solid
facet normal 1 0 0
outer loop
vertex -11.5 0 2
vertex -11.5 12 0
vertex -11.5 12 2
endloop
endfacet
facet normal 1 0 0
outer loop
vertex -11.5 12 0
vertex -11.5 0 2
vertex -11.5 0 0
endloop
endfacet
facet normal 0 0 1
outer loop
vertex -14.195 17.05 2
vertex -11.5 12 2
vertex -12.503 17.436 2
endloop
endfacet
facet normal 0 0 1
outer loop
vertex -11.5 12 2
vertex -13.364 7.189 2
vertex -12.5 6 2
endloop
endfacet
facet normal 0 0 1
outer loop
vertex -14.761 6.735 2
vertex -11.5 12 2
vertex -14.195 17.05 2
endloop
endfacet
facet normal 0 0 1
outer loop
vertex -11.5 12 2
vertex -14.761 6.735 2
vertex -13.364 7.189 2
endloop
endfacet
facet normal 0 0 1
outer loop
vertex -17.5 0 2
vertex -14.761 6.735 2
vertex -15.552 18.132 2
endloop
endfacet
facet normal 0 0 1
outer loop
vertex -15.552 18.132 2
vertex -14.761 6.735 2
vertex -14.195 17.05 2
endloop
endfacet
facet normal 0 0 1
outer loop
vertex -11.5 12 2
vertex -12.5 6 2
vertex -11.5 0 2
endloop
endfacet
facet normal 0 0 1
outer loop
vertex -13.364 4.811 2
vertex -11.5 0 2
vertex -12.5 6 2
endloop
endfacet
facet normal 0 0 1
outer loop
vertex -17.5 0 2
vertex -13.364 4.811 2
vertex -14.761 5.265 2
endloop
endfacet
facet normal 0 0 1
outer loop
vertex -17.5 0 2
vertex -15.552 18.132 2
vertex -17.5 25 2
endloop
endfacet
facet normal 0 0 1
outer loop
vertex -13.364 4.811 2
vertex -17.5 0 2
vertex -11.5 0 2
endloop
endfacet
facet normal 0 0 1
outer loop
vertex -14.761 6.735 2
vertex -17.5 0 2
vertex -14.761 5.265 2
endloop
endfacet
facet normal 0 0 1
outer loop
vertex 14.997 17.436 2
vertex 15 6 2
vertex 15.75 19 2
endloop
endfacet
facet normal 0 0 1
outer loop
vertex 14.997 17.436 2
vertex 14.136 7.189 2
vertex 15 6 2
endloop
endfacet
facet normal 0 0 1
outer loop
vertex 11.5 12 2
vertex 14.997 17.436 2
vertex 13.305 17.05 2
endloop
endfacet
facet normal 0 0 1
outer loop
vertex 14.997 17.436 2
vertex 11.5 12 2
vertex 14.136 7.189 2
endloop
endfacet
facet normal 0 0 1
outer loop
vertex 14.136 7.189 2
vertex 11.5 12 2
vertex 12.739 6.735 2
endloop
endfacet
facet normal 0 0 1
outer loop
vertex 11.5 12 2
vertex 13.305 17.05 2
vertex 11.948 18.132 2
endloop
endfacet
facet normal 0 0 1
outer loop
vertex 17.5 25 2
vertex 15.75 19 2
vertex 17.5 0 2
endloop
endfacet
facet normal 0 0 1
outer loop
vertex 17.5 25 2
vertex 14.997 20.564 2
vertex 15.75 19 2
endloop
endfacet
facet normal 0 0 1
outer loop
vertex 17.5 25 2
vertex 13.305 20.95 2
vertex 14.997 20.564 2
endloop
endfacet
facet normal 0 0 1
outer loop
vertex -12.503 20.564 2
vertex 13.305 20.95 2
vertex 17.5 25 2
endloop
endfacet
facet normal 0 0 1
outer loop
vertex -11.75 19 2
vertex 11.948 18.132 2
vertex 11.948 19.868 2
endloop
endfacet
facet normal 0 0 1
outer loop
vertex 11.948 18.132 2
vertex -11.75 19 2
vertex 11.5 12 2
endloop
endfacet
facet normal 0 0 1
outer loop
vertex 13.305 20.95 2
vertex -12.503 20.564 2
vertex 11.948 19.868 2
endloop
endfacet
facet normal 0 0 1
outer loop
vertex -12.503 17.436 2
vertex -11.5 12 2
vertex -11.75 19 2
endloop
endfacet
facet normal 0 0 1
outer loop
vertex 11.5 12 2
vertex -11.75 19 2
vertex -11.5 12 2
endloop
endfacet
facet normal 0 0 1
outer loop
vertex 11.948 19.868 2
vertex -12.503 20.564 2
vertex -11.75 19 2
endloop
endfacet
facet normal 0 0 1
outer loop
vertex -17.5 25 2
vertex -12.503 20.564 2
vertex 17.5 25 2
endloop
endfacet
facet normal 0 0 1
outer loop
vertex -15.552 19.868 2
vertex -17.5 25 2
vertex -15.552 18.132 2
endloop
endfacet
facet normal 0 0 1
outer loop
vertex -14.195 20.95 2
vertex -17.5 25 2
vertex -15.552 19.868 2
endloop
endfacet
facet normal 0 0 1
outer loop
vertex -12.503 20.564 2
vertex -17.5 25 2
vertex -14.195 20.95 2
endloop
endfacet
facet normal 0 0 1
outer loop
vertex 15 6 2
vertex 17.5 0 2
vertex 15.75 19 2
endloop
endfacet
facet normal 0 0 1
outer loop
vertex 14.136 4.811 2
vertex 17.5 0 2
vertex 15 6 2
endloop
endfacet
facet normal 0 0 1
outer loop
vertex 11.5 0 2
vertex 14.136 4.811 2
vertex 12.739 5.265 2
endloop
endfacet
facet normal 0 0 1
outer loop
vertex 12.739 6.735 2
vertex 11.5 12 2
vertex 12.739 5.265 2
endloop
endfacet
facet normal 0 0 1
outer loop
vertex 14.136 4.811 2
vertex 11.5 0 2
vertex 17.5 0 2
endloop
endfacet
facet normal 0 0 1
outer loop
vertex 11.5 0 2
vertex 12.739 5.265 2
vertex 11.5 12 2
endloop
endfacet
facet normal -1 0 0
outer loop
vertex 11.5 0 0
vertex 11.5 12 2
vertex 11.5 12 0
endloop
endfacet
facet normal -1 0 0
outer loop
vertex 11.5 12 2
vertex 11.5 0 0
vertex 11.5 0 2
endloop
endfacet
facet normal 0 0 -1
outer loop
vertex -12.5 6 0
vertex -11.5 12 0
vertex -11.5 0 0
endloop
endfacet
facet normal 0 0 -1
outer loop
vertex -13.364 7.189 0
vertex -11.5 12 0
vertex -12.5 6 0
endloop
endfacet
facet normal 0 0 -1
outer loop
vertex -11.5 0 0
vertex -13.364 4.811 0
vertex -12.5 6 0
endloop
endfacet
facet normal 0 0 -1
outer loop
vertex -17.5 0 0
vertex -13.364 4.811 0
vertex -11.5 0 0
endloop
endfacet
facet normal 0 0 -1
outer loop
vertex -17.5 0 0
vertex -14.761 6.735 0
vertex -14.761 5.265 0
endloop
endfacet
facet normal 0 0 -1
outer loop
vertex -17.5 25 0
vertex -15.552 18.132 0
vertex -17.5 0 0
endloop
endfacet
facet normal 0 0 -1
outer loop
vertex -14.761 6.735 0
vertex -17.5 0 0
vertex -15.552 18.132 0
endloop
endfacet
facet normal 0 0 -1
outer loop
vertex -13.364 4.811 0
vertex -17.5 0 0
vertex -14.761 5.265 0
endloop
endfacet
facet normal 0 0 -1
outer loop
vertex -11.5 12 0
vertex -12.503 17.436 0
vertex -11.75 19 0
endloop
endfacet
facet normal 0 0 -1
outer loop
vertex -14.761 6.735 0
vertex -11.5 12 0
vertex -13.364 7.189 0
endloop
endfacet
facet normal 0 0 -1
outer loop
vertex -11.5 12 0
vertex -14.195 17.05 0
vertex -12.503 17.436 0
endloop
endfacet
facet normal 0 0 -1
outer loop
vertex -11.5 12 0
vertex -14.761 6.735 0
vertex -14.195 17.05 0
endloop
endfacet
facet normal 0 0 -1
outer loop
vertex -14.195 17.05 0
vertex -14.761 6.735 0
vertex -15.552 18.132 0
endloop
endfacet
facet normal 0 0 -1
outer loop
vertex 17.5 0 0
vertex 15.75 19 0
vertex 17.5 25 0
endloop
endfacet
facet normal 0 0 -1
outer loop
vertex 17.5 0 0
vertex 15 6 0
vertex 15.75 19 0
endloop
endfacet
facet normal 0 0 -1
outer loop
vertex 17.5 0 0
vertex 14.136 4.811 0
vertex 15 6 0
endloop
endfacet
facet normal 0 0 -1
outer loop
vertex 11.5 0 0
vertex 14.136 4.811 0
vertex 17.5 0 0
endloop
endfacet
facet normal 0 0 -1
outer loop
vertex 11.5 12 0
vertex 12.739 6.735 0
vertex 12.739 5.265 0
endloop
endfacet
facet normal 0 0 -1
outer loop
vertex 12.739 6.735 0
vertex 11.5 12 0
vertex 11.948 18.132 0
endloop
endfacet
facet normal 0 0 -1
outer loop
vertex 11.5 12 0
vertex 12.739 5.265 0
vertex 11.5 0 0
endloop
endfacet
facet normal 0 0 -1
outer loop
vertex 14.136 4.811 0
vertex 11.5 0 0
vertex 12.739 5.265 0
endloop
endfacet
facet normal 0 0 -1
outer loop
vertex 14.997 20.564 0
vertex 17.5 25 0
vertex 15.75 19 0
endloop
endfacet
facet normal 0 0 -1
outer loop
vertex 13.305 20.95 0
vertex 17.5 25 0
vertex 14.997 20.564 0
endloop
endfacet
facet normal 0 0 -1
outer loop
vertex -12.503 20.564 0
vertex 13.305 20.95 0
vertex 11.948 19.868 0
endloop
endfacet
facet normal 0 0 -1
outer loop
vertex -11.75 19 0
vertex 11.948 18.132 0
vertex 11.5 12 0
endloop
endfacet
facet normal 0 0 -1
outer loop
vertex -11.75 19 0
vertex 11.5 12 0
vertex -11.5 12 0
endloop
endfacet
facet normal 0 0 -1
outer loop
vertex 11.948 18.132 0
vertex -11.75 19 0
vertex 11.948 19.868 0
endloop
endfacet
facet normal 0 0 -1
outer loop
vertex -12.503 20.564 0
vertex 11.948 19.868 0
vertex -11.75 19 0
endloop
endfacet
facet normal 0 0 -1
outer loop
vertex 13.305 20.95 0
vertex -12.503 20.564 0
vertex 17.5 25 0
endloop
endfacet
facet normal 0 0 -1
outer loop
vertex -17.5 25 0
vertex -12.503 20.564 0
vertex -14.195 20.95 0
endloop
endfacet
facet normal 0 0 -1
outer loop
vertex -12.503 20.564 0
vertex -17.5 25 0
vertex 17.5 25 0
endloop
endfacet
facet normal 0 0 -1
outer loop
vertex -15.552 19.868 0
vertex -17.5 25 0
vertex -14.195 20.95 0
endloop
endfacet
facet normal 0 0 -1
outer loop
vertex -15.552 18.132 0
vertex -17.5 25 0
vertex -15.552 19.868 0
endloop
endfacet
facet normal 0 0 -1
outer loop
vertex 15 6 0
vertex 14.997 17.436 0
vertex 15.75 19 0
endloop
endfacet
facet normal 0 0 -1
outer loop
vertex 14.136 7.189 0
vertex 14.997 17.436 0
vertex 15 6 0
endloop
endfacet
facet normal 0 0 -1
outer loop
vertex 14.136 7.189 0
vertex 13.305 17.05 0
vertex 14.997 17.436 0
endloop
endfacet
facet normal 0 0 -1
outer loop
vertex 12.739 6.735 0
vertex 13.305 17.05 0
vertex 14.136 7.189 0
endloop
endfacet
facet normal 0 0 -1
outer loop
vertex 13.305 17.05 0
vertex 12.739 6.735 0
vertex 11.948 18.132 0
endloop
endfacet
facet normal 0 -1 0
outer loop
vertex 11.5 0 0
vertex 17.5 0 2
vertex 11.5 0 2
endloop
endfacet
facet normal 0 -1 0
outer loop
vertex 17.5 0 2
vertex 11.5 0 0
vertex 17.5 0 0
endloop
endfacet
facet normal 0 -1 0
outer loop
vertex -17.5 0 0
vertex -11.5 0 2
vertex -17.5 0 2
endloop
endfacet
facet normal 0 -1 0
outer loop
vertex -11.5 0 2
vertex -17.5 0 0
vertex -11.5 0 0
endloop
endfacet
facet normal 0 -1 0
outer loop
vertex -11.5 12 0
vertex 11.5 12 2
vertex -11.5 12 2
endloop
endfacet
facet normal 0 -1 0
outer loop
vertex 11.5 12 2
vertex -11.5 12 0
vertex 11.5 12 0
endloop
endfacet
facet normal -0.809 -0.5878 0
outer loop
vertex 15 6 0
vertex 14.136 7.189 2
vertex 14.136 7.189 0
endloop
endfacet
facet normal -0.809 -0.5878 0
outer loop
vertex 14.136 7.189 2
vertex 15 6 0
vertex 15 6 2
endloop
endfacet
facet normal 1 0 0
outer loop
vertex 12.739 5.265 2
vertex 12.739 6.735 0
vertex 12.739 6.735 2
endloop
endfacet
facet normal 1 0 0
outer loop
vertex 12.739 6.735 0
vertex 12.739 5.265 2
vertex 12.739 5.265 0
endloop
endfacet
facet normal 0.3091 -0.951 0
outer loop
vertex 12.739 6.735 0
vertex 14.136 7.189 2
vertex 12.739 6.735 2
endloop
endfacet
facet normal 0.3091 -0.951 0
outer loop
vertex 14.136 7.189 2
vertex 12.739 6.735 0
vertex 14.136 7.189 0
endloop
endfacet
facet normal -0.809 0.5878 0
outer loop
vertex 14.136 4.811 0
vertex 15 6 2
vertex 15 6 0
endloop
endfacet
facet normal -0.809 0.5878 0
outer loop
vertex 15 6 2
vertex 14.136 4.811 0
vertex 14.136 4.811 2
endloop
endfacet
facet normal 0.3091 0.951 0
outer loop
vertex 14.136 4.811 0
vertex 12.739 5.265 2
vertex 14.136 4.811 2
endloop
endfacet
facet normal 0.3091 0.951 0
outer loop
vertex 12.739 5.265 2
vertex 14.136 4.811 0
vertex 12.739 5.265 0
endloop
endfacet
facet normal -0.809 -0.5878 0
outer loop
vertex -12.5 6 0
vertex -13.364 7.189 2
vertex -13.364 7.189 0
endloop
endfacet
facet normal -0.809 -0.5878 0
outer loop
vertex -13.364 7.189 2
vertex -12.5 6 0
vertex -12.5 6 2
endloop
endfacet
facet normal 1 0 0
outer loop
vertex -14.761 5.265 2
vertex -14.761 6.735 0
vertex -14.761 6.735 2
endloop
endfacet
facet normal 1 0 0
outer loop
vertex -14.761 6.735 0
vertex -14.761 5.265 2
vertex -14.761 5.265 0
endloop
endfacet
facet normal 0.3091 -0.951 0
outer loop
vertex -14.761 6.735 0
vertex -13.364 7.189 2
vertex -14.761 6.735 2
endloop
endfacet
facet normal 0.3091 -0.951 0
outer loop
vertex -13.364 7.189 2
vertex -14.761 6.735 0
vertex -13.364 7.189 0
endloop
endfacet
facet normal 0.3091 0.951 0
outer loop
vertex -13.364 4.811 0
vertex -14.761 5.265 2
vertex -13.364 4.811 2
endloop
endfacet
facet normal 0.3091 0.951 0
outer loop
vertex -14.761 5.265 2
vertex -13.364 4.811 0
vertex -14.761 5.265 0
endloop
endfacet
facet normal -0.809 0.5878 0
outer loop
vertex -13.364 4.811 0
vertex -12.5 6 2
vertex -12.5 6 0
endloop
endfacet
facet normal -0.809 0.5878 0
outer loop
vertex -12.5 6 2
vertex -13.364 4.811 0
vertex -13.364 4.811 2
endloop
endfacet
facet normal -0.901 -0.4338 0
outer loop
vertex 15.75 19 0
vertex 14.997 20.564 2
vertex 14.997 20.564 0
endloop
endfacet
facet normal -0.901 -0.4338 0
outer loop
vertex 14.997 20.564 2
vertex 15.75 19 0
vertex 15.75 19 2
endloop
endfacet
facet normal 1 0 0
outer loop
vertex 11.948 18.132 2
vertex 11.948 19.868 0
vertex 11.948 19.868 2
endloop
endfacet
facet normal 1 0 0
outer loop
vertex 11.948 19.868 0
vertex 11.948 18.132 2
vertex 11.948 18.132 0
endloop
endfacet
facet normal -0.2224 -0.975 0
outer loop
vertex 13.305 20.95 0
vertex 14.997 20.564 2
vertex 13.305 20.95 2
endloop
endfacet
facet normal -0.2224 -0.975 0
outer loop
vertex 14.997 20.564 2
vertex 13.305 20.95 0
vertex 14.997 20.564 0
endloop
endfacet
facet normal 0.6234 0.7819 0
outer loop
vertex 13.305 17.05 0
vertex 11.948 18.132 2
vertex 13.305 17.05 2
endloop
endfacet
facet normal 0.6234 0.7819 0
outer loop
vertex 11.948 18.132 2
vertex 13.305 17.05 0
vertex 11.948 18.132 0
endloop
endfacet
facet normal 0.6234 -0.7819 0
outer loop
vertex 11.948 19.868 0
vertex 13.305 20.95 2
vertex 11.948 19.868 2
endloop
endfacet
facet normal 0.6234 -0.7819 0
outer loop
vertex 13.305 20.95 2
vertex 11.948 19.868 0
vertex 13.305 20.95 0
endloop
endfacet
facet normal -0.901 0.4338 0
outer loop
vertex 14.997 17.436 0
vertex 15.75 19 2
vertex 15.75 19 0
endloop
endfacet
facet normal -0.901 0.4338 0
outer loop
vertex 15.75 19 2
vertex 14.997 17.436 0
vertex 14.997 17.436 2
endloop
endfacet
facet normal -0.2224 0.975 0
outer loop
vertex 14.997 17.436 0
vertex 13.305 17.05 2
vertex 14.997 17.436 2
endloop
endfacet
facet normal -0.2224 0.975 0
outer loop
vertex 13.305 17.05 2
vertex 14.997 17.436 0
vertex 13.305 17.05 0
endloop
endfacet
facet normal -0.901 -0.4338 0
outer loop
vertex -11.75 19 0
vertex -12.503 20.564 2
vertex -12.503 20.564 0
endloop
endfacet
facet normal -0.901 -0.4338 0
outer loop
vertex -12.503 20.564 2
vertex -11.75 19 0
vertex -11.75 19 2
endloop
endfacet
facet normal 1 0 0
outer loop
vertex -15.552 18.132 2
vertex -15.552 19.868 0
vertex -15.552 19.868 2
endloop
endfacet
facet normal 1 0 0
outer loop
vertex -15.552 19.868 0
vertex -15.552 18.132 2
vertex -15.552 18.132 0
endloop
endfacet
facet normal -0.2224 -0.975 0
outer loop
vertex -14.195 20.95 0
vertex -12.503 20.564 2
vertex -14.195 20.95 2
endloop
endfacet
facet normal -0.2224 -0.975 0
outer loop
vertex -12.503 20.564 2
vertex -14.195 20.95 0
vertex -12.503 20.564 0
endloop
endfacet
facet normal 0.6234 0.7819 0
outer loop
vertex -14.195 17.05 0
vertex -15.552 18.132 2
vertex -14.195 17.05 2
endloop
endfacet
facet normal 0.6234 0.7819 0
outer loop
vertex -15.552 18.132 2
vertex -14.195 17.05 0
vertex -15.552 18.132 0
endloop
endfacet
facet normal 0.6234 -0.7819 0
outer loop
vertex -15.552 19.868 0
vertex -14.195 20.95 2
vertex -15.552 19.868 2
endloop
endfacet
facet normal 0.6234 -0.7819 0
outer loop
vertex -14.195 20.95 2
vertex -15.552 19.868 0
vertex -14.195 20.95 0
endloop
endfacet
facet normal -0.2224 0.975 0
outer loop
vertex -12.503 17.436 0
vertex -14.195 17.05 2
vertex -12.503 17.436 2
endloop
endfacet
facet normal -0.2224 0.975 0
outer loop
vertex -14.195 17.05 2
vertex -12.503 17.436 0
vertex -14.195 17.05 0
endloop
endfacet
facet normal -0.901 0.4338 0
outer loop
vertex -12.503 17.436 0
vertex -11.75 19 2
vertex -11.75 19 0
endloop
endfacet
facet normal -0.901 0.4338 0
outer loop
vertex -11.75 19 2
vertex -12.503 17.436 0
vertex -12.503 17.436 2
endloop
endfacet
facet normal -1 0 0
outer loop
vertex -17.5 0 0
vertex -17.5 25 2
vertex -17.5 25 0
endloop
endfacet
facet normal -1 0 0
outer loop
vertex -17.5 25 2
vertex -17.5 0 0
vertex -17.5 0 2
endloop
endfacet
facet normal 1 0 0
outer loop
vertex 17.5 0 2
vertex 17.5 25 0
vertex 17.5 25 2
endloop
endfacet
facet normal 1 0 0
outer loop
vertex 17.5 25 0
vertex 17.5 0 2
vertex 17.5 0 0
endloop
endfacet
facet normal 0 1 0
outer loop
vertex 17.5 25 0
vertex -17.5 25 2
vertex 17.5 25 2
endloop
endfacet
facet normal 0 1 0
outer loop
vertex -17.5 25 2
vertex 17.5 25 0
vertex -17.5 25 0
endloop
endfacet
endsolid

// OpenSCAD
difference() {
	translate(v = [0, 12.5000000000, 0]) {
		translate(v = [0, 0, 1.0000000000]) {
			cube(center = true, size = [35, 25, 2]);
		}
	}
	translate(v = [0, 6.0000000000, 0]) {
		union() {
			translate(v = [0, 0, 1.0000000000]) {
				cube(center = true, size = [23, 12, 2]);
			}
			translate(v = [13.7500000000, 0, 0]) {
				cylinder(d = 2.5000000000, h = 10);
			}
			translate(v = [-13.7500000000, 0, 0]) {
				cylinder(d = 2.5000000000, h = 10);
			}
		}
	}
	union() {
		translate(v = [13.7500000000, 0, 0]) {
			translate(v = [0, 19.0000000000, 0]) {
				cylinder(d = 4, h = 10);
			}
		}
		translate(v = [-13.7500000000, 0, 0]) {
			translate(v = [0, 19.0000000000, 0]) {
				cylinder(d = 4, h = 10);
			}
		}
	}
}
